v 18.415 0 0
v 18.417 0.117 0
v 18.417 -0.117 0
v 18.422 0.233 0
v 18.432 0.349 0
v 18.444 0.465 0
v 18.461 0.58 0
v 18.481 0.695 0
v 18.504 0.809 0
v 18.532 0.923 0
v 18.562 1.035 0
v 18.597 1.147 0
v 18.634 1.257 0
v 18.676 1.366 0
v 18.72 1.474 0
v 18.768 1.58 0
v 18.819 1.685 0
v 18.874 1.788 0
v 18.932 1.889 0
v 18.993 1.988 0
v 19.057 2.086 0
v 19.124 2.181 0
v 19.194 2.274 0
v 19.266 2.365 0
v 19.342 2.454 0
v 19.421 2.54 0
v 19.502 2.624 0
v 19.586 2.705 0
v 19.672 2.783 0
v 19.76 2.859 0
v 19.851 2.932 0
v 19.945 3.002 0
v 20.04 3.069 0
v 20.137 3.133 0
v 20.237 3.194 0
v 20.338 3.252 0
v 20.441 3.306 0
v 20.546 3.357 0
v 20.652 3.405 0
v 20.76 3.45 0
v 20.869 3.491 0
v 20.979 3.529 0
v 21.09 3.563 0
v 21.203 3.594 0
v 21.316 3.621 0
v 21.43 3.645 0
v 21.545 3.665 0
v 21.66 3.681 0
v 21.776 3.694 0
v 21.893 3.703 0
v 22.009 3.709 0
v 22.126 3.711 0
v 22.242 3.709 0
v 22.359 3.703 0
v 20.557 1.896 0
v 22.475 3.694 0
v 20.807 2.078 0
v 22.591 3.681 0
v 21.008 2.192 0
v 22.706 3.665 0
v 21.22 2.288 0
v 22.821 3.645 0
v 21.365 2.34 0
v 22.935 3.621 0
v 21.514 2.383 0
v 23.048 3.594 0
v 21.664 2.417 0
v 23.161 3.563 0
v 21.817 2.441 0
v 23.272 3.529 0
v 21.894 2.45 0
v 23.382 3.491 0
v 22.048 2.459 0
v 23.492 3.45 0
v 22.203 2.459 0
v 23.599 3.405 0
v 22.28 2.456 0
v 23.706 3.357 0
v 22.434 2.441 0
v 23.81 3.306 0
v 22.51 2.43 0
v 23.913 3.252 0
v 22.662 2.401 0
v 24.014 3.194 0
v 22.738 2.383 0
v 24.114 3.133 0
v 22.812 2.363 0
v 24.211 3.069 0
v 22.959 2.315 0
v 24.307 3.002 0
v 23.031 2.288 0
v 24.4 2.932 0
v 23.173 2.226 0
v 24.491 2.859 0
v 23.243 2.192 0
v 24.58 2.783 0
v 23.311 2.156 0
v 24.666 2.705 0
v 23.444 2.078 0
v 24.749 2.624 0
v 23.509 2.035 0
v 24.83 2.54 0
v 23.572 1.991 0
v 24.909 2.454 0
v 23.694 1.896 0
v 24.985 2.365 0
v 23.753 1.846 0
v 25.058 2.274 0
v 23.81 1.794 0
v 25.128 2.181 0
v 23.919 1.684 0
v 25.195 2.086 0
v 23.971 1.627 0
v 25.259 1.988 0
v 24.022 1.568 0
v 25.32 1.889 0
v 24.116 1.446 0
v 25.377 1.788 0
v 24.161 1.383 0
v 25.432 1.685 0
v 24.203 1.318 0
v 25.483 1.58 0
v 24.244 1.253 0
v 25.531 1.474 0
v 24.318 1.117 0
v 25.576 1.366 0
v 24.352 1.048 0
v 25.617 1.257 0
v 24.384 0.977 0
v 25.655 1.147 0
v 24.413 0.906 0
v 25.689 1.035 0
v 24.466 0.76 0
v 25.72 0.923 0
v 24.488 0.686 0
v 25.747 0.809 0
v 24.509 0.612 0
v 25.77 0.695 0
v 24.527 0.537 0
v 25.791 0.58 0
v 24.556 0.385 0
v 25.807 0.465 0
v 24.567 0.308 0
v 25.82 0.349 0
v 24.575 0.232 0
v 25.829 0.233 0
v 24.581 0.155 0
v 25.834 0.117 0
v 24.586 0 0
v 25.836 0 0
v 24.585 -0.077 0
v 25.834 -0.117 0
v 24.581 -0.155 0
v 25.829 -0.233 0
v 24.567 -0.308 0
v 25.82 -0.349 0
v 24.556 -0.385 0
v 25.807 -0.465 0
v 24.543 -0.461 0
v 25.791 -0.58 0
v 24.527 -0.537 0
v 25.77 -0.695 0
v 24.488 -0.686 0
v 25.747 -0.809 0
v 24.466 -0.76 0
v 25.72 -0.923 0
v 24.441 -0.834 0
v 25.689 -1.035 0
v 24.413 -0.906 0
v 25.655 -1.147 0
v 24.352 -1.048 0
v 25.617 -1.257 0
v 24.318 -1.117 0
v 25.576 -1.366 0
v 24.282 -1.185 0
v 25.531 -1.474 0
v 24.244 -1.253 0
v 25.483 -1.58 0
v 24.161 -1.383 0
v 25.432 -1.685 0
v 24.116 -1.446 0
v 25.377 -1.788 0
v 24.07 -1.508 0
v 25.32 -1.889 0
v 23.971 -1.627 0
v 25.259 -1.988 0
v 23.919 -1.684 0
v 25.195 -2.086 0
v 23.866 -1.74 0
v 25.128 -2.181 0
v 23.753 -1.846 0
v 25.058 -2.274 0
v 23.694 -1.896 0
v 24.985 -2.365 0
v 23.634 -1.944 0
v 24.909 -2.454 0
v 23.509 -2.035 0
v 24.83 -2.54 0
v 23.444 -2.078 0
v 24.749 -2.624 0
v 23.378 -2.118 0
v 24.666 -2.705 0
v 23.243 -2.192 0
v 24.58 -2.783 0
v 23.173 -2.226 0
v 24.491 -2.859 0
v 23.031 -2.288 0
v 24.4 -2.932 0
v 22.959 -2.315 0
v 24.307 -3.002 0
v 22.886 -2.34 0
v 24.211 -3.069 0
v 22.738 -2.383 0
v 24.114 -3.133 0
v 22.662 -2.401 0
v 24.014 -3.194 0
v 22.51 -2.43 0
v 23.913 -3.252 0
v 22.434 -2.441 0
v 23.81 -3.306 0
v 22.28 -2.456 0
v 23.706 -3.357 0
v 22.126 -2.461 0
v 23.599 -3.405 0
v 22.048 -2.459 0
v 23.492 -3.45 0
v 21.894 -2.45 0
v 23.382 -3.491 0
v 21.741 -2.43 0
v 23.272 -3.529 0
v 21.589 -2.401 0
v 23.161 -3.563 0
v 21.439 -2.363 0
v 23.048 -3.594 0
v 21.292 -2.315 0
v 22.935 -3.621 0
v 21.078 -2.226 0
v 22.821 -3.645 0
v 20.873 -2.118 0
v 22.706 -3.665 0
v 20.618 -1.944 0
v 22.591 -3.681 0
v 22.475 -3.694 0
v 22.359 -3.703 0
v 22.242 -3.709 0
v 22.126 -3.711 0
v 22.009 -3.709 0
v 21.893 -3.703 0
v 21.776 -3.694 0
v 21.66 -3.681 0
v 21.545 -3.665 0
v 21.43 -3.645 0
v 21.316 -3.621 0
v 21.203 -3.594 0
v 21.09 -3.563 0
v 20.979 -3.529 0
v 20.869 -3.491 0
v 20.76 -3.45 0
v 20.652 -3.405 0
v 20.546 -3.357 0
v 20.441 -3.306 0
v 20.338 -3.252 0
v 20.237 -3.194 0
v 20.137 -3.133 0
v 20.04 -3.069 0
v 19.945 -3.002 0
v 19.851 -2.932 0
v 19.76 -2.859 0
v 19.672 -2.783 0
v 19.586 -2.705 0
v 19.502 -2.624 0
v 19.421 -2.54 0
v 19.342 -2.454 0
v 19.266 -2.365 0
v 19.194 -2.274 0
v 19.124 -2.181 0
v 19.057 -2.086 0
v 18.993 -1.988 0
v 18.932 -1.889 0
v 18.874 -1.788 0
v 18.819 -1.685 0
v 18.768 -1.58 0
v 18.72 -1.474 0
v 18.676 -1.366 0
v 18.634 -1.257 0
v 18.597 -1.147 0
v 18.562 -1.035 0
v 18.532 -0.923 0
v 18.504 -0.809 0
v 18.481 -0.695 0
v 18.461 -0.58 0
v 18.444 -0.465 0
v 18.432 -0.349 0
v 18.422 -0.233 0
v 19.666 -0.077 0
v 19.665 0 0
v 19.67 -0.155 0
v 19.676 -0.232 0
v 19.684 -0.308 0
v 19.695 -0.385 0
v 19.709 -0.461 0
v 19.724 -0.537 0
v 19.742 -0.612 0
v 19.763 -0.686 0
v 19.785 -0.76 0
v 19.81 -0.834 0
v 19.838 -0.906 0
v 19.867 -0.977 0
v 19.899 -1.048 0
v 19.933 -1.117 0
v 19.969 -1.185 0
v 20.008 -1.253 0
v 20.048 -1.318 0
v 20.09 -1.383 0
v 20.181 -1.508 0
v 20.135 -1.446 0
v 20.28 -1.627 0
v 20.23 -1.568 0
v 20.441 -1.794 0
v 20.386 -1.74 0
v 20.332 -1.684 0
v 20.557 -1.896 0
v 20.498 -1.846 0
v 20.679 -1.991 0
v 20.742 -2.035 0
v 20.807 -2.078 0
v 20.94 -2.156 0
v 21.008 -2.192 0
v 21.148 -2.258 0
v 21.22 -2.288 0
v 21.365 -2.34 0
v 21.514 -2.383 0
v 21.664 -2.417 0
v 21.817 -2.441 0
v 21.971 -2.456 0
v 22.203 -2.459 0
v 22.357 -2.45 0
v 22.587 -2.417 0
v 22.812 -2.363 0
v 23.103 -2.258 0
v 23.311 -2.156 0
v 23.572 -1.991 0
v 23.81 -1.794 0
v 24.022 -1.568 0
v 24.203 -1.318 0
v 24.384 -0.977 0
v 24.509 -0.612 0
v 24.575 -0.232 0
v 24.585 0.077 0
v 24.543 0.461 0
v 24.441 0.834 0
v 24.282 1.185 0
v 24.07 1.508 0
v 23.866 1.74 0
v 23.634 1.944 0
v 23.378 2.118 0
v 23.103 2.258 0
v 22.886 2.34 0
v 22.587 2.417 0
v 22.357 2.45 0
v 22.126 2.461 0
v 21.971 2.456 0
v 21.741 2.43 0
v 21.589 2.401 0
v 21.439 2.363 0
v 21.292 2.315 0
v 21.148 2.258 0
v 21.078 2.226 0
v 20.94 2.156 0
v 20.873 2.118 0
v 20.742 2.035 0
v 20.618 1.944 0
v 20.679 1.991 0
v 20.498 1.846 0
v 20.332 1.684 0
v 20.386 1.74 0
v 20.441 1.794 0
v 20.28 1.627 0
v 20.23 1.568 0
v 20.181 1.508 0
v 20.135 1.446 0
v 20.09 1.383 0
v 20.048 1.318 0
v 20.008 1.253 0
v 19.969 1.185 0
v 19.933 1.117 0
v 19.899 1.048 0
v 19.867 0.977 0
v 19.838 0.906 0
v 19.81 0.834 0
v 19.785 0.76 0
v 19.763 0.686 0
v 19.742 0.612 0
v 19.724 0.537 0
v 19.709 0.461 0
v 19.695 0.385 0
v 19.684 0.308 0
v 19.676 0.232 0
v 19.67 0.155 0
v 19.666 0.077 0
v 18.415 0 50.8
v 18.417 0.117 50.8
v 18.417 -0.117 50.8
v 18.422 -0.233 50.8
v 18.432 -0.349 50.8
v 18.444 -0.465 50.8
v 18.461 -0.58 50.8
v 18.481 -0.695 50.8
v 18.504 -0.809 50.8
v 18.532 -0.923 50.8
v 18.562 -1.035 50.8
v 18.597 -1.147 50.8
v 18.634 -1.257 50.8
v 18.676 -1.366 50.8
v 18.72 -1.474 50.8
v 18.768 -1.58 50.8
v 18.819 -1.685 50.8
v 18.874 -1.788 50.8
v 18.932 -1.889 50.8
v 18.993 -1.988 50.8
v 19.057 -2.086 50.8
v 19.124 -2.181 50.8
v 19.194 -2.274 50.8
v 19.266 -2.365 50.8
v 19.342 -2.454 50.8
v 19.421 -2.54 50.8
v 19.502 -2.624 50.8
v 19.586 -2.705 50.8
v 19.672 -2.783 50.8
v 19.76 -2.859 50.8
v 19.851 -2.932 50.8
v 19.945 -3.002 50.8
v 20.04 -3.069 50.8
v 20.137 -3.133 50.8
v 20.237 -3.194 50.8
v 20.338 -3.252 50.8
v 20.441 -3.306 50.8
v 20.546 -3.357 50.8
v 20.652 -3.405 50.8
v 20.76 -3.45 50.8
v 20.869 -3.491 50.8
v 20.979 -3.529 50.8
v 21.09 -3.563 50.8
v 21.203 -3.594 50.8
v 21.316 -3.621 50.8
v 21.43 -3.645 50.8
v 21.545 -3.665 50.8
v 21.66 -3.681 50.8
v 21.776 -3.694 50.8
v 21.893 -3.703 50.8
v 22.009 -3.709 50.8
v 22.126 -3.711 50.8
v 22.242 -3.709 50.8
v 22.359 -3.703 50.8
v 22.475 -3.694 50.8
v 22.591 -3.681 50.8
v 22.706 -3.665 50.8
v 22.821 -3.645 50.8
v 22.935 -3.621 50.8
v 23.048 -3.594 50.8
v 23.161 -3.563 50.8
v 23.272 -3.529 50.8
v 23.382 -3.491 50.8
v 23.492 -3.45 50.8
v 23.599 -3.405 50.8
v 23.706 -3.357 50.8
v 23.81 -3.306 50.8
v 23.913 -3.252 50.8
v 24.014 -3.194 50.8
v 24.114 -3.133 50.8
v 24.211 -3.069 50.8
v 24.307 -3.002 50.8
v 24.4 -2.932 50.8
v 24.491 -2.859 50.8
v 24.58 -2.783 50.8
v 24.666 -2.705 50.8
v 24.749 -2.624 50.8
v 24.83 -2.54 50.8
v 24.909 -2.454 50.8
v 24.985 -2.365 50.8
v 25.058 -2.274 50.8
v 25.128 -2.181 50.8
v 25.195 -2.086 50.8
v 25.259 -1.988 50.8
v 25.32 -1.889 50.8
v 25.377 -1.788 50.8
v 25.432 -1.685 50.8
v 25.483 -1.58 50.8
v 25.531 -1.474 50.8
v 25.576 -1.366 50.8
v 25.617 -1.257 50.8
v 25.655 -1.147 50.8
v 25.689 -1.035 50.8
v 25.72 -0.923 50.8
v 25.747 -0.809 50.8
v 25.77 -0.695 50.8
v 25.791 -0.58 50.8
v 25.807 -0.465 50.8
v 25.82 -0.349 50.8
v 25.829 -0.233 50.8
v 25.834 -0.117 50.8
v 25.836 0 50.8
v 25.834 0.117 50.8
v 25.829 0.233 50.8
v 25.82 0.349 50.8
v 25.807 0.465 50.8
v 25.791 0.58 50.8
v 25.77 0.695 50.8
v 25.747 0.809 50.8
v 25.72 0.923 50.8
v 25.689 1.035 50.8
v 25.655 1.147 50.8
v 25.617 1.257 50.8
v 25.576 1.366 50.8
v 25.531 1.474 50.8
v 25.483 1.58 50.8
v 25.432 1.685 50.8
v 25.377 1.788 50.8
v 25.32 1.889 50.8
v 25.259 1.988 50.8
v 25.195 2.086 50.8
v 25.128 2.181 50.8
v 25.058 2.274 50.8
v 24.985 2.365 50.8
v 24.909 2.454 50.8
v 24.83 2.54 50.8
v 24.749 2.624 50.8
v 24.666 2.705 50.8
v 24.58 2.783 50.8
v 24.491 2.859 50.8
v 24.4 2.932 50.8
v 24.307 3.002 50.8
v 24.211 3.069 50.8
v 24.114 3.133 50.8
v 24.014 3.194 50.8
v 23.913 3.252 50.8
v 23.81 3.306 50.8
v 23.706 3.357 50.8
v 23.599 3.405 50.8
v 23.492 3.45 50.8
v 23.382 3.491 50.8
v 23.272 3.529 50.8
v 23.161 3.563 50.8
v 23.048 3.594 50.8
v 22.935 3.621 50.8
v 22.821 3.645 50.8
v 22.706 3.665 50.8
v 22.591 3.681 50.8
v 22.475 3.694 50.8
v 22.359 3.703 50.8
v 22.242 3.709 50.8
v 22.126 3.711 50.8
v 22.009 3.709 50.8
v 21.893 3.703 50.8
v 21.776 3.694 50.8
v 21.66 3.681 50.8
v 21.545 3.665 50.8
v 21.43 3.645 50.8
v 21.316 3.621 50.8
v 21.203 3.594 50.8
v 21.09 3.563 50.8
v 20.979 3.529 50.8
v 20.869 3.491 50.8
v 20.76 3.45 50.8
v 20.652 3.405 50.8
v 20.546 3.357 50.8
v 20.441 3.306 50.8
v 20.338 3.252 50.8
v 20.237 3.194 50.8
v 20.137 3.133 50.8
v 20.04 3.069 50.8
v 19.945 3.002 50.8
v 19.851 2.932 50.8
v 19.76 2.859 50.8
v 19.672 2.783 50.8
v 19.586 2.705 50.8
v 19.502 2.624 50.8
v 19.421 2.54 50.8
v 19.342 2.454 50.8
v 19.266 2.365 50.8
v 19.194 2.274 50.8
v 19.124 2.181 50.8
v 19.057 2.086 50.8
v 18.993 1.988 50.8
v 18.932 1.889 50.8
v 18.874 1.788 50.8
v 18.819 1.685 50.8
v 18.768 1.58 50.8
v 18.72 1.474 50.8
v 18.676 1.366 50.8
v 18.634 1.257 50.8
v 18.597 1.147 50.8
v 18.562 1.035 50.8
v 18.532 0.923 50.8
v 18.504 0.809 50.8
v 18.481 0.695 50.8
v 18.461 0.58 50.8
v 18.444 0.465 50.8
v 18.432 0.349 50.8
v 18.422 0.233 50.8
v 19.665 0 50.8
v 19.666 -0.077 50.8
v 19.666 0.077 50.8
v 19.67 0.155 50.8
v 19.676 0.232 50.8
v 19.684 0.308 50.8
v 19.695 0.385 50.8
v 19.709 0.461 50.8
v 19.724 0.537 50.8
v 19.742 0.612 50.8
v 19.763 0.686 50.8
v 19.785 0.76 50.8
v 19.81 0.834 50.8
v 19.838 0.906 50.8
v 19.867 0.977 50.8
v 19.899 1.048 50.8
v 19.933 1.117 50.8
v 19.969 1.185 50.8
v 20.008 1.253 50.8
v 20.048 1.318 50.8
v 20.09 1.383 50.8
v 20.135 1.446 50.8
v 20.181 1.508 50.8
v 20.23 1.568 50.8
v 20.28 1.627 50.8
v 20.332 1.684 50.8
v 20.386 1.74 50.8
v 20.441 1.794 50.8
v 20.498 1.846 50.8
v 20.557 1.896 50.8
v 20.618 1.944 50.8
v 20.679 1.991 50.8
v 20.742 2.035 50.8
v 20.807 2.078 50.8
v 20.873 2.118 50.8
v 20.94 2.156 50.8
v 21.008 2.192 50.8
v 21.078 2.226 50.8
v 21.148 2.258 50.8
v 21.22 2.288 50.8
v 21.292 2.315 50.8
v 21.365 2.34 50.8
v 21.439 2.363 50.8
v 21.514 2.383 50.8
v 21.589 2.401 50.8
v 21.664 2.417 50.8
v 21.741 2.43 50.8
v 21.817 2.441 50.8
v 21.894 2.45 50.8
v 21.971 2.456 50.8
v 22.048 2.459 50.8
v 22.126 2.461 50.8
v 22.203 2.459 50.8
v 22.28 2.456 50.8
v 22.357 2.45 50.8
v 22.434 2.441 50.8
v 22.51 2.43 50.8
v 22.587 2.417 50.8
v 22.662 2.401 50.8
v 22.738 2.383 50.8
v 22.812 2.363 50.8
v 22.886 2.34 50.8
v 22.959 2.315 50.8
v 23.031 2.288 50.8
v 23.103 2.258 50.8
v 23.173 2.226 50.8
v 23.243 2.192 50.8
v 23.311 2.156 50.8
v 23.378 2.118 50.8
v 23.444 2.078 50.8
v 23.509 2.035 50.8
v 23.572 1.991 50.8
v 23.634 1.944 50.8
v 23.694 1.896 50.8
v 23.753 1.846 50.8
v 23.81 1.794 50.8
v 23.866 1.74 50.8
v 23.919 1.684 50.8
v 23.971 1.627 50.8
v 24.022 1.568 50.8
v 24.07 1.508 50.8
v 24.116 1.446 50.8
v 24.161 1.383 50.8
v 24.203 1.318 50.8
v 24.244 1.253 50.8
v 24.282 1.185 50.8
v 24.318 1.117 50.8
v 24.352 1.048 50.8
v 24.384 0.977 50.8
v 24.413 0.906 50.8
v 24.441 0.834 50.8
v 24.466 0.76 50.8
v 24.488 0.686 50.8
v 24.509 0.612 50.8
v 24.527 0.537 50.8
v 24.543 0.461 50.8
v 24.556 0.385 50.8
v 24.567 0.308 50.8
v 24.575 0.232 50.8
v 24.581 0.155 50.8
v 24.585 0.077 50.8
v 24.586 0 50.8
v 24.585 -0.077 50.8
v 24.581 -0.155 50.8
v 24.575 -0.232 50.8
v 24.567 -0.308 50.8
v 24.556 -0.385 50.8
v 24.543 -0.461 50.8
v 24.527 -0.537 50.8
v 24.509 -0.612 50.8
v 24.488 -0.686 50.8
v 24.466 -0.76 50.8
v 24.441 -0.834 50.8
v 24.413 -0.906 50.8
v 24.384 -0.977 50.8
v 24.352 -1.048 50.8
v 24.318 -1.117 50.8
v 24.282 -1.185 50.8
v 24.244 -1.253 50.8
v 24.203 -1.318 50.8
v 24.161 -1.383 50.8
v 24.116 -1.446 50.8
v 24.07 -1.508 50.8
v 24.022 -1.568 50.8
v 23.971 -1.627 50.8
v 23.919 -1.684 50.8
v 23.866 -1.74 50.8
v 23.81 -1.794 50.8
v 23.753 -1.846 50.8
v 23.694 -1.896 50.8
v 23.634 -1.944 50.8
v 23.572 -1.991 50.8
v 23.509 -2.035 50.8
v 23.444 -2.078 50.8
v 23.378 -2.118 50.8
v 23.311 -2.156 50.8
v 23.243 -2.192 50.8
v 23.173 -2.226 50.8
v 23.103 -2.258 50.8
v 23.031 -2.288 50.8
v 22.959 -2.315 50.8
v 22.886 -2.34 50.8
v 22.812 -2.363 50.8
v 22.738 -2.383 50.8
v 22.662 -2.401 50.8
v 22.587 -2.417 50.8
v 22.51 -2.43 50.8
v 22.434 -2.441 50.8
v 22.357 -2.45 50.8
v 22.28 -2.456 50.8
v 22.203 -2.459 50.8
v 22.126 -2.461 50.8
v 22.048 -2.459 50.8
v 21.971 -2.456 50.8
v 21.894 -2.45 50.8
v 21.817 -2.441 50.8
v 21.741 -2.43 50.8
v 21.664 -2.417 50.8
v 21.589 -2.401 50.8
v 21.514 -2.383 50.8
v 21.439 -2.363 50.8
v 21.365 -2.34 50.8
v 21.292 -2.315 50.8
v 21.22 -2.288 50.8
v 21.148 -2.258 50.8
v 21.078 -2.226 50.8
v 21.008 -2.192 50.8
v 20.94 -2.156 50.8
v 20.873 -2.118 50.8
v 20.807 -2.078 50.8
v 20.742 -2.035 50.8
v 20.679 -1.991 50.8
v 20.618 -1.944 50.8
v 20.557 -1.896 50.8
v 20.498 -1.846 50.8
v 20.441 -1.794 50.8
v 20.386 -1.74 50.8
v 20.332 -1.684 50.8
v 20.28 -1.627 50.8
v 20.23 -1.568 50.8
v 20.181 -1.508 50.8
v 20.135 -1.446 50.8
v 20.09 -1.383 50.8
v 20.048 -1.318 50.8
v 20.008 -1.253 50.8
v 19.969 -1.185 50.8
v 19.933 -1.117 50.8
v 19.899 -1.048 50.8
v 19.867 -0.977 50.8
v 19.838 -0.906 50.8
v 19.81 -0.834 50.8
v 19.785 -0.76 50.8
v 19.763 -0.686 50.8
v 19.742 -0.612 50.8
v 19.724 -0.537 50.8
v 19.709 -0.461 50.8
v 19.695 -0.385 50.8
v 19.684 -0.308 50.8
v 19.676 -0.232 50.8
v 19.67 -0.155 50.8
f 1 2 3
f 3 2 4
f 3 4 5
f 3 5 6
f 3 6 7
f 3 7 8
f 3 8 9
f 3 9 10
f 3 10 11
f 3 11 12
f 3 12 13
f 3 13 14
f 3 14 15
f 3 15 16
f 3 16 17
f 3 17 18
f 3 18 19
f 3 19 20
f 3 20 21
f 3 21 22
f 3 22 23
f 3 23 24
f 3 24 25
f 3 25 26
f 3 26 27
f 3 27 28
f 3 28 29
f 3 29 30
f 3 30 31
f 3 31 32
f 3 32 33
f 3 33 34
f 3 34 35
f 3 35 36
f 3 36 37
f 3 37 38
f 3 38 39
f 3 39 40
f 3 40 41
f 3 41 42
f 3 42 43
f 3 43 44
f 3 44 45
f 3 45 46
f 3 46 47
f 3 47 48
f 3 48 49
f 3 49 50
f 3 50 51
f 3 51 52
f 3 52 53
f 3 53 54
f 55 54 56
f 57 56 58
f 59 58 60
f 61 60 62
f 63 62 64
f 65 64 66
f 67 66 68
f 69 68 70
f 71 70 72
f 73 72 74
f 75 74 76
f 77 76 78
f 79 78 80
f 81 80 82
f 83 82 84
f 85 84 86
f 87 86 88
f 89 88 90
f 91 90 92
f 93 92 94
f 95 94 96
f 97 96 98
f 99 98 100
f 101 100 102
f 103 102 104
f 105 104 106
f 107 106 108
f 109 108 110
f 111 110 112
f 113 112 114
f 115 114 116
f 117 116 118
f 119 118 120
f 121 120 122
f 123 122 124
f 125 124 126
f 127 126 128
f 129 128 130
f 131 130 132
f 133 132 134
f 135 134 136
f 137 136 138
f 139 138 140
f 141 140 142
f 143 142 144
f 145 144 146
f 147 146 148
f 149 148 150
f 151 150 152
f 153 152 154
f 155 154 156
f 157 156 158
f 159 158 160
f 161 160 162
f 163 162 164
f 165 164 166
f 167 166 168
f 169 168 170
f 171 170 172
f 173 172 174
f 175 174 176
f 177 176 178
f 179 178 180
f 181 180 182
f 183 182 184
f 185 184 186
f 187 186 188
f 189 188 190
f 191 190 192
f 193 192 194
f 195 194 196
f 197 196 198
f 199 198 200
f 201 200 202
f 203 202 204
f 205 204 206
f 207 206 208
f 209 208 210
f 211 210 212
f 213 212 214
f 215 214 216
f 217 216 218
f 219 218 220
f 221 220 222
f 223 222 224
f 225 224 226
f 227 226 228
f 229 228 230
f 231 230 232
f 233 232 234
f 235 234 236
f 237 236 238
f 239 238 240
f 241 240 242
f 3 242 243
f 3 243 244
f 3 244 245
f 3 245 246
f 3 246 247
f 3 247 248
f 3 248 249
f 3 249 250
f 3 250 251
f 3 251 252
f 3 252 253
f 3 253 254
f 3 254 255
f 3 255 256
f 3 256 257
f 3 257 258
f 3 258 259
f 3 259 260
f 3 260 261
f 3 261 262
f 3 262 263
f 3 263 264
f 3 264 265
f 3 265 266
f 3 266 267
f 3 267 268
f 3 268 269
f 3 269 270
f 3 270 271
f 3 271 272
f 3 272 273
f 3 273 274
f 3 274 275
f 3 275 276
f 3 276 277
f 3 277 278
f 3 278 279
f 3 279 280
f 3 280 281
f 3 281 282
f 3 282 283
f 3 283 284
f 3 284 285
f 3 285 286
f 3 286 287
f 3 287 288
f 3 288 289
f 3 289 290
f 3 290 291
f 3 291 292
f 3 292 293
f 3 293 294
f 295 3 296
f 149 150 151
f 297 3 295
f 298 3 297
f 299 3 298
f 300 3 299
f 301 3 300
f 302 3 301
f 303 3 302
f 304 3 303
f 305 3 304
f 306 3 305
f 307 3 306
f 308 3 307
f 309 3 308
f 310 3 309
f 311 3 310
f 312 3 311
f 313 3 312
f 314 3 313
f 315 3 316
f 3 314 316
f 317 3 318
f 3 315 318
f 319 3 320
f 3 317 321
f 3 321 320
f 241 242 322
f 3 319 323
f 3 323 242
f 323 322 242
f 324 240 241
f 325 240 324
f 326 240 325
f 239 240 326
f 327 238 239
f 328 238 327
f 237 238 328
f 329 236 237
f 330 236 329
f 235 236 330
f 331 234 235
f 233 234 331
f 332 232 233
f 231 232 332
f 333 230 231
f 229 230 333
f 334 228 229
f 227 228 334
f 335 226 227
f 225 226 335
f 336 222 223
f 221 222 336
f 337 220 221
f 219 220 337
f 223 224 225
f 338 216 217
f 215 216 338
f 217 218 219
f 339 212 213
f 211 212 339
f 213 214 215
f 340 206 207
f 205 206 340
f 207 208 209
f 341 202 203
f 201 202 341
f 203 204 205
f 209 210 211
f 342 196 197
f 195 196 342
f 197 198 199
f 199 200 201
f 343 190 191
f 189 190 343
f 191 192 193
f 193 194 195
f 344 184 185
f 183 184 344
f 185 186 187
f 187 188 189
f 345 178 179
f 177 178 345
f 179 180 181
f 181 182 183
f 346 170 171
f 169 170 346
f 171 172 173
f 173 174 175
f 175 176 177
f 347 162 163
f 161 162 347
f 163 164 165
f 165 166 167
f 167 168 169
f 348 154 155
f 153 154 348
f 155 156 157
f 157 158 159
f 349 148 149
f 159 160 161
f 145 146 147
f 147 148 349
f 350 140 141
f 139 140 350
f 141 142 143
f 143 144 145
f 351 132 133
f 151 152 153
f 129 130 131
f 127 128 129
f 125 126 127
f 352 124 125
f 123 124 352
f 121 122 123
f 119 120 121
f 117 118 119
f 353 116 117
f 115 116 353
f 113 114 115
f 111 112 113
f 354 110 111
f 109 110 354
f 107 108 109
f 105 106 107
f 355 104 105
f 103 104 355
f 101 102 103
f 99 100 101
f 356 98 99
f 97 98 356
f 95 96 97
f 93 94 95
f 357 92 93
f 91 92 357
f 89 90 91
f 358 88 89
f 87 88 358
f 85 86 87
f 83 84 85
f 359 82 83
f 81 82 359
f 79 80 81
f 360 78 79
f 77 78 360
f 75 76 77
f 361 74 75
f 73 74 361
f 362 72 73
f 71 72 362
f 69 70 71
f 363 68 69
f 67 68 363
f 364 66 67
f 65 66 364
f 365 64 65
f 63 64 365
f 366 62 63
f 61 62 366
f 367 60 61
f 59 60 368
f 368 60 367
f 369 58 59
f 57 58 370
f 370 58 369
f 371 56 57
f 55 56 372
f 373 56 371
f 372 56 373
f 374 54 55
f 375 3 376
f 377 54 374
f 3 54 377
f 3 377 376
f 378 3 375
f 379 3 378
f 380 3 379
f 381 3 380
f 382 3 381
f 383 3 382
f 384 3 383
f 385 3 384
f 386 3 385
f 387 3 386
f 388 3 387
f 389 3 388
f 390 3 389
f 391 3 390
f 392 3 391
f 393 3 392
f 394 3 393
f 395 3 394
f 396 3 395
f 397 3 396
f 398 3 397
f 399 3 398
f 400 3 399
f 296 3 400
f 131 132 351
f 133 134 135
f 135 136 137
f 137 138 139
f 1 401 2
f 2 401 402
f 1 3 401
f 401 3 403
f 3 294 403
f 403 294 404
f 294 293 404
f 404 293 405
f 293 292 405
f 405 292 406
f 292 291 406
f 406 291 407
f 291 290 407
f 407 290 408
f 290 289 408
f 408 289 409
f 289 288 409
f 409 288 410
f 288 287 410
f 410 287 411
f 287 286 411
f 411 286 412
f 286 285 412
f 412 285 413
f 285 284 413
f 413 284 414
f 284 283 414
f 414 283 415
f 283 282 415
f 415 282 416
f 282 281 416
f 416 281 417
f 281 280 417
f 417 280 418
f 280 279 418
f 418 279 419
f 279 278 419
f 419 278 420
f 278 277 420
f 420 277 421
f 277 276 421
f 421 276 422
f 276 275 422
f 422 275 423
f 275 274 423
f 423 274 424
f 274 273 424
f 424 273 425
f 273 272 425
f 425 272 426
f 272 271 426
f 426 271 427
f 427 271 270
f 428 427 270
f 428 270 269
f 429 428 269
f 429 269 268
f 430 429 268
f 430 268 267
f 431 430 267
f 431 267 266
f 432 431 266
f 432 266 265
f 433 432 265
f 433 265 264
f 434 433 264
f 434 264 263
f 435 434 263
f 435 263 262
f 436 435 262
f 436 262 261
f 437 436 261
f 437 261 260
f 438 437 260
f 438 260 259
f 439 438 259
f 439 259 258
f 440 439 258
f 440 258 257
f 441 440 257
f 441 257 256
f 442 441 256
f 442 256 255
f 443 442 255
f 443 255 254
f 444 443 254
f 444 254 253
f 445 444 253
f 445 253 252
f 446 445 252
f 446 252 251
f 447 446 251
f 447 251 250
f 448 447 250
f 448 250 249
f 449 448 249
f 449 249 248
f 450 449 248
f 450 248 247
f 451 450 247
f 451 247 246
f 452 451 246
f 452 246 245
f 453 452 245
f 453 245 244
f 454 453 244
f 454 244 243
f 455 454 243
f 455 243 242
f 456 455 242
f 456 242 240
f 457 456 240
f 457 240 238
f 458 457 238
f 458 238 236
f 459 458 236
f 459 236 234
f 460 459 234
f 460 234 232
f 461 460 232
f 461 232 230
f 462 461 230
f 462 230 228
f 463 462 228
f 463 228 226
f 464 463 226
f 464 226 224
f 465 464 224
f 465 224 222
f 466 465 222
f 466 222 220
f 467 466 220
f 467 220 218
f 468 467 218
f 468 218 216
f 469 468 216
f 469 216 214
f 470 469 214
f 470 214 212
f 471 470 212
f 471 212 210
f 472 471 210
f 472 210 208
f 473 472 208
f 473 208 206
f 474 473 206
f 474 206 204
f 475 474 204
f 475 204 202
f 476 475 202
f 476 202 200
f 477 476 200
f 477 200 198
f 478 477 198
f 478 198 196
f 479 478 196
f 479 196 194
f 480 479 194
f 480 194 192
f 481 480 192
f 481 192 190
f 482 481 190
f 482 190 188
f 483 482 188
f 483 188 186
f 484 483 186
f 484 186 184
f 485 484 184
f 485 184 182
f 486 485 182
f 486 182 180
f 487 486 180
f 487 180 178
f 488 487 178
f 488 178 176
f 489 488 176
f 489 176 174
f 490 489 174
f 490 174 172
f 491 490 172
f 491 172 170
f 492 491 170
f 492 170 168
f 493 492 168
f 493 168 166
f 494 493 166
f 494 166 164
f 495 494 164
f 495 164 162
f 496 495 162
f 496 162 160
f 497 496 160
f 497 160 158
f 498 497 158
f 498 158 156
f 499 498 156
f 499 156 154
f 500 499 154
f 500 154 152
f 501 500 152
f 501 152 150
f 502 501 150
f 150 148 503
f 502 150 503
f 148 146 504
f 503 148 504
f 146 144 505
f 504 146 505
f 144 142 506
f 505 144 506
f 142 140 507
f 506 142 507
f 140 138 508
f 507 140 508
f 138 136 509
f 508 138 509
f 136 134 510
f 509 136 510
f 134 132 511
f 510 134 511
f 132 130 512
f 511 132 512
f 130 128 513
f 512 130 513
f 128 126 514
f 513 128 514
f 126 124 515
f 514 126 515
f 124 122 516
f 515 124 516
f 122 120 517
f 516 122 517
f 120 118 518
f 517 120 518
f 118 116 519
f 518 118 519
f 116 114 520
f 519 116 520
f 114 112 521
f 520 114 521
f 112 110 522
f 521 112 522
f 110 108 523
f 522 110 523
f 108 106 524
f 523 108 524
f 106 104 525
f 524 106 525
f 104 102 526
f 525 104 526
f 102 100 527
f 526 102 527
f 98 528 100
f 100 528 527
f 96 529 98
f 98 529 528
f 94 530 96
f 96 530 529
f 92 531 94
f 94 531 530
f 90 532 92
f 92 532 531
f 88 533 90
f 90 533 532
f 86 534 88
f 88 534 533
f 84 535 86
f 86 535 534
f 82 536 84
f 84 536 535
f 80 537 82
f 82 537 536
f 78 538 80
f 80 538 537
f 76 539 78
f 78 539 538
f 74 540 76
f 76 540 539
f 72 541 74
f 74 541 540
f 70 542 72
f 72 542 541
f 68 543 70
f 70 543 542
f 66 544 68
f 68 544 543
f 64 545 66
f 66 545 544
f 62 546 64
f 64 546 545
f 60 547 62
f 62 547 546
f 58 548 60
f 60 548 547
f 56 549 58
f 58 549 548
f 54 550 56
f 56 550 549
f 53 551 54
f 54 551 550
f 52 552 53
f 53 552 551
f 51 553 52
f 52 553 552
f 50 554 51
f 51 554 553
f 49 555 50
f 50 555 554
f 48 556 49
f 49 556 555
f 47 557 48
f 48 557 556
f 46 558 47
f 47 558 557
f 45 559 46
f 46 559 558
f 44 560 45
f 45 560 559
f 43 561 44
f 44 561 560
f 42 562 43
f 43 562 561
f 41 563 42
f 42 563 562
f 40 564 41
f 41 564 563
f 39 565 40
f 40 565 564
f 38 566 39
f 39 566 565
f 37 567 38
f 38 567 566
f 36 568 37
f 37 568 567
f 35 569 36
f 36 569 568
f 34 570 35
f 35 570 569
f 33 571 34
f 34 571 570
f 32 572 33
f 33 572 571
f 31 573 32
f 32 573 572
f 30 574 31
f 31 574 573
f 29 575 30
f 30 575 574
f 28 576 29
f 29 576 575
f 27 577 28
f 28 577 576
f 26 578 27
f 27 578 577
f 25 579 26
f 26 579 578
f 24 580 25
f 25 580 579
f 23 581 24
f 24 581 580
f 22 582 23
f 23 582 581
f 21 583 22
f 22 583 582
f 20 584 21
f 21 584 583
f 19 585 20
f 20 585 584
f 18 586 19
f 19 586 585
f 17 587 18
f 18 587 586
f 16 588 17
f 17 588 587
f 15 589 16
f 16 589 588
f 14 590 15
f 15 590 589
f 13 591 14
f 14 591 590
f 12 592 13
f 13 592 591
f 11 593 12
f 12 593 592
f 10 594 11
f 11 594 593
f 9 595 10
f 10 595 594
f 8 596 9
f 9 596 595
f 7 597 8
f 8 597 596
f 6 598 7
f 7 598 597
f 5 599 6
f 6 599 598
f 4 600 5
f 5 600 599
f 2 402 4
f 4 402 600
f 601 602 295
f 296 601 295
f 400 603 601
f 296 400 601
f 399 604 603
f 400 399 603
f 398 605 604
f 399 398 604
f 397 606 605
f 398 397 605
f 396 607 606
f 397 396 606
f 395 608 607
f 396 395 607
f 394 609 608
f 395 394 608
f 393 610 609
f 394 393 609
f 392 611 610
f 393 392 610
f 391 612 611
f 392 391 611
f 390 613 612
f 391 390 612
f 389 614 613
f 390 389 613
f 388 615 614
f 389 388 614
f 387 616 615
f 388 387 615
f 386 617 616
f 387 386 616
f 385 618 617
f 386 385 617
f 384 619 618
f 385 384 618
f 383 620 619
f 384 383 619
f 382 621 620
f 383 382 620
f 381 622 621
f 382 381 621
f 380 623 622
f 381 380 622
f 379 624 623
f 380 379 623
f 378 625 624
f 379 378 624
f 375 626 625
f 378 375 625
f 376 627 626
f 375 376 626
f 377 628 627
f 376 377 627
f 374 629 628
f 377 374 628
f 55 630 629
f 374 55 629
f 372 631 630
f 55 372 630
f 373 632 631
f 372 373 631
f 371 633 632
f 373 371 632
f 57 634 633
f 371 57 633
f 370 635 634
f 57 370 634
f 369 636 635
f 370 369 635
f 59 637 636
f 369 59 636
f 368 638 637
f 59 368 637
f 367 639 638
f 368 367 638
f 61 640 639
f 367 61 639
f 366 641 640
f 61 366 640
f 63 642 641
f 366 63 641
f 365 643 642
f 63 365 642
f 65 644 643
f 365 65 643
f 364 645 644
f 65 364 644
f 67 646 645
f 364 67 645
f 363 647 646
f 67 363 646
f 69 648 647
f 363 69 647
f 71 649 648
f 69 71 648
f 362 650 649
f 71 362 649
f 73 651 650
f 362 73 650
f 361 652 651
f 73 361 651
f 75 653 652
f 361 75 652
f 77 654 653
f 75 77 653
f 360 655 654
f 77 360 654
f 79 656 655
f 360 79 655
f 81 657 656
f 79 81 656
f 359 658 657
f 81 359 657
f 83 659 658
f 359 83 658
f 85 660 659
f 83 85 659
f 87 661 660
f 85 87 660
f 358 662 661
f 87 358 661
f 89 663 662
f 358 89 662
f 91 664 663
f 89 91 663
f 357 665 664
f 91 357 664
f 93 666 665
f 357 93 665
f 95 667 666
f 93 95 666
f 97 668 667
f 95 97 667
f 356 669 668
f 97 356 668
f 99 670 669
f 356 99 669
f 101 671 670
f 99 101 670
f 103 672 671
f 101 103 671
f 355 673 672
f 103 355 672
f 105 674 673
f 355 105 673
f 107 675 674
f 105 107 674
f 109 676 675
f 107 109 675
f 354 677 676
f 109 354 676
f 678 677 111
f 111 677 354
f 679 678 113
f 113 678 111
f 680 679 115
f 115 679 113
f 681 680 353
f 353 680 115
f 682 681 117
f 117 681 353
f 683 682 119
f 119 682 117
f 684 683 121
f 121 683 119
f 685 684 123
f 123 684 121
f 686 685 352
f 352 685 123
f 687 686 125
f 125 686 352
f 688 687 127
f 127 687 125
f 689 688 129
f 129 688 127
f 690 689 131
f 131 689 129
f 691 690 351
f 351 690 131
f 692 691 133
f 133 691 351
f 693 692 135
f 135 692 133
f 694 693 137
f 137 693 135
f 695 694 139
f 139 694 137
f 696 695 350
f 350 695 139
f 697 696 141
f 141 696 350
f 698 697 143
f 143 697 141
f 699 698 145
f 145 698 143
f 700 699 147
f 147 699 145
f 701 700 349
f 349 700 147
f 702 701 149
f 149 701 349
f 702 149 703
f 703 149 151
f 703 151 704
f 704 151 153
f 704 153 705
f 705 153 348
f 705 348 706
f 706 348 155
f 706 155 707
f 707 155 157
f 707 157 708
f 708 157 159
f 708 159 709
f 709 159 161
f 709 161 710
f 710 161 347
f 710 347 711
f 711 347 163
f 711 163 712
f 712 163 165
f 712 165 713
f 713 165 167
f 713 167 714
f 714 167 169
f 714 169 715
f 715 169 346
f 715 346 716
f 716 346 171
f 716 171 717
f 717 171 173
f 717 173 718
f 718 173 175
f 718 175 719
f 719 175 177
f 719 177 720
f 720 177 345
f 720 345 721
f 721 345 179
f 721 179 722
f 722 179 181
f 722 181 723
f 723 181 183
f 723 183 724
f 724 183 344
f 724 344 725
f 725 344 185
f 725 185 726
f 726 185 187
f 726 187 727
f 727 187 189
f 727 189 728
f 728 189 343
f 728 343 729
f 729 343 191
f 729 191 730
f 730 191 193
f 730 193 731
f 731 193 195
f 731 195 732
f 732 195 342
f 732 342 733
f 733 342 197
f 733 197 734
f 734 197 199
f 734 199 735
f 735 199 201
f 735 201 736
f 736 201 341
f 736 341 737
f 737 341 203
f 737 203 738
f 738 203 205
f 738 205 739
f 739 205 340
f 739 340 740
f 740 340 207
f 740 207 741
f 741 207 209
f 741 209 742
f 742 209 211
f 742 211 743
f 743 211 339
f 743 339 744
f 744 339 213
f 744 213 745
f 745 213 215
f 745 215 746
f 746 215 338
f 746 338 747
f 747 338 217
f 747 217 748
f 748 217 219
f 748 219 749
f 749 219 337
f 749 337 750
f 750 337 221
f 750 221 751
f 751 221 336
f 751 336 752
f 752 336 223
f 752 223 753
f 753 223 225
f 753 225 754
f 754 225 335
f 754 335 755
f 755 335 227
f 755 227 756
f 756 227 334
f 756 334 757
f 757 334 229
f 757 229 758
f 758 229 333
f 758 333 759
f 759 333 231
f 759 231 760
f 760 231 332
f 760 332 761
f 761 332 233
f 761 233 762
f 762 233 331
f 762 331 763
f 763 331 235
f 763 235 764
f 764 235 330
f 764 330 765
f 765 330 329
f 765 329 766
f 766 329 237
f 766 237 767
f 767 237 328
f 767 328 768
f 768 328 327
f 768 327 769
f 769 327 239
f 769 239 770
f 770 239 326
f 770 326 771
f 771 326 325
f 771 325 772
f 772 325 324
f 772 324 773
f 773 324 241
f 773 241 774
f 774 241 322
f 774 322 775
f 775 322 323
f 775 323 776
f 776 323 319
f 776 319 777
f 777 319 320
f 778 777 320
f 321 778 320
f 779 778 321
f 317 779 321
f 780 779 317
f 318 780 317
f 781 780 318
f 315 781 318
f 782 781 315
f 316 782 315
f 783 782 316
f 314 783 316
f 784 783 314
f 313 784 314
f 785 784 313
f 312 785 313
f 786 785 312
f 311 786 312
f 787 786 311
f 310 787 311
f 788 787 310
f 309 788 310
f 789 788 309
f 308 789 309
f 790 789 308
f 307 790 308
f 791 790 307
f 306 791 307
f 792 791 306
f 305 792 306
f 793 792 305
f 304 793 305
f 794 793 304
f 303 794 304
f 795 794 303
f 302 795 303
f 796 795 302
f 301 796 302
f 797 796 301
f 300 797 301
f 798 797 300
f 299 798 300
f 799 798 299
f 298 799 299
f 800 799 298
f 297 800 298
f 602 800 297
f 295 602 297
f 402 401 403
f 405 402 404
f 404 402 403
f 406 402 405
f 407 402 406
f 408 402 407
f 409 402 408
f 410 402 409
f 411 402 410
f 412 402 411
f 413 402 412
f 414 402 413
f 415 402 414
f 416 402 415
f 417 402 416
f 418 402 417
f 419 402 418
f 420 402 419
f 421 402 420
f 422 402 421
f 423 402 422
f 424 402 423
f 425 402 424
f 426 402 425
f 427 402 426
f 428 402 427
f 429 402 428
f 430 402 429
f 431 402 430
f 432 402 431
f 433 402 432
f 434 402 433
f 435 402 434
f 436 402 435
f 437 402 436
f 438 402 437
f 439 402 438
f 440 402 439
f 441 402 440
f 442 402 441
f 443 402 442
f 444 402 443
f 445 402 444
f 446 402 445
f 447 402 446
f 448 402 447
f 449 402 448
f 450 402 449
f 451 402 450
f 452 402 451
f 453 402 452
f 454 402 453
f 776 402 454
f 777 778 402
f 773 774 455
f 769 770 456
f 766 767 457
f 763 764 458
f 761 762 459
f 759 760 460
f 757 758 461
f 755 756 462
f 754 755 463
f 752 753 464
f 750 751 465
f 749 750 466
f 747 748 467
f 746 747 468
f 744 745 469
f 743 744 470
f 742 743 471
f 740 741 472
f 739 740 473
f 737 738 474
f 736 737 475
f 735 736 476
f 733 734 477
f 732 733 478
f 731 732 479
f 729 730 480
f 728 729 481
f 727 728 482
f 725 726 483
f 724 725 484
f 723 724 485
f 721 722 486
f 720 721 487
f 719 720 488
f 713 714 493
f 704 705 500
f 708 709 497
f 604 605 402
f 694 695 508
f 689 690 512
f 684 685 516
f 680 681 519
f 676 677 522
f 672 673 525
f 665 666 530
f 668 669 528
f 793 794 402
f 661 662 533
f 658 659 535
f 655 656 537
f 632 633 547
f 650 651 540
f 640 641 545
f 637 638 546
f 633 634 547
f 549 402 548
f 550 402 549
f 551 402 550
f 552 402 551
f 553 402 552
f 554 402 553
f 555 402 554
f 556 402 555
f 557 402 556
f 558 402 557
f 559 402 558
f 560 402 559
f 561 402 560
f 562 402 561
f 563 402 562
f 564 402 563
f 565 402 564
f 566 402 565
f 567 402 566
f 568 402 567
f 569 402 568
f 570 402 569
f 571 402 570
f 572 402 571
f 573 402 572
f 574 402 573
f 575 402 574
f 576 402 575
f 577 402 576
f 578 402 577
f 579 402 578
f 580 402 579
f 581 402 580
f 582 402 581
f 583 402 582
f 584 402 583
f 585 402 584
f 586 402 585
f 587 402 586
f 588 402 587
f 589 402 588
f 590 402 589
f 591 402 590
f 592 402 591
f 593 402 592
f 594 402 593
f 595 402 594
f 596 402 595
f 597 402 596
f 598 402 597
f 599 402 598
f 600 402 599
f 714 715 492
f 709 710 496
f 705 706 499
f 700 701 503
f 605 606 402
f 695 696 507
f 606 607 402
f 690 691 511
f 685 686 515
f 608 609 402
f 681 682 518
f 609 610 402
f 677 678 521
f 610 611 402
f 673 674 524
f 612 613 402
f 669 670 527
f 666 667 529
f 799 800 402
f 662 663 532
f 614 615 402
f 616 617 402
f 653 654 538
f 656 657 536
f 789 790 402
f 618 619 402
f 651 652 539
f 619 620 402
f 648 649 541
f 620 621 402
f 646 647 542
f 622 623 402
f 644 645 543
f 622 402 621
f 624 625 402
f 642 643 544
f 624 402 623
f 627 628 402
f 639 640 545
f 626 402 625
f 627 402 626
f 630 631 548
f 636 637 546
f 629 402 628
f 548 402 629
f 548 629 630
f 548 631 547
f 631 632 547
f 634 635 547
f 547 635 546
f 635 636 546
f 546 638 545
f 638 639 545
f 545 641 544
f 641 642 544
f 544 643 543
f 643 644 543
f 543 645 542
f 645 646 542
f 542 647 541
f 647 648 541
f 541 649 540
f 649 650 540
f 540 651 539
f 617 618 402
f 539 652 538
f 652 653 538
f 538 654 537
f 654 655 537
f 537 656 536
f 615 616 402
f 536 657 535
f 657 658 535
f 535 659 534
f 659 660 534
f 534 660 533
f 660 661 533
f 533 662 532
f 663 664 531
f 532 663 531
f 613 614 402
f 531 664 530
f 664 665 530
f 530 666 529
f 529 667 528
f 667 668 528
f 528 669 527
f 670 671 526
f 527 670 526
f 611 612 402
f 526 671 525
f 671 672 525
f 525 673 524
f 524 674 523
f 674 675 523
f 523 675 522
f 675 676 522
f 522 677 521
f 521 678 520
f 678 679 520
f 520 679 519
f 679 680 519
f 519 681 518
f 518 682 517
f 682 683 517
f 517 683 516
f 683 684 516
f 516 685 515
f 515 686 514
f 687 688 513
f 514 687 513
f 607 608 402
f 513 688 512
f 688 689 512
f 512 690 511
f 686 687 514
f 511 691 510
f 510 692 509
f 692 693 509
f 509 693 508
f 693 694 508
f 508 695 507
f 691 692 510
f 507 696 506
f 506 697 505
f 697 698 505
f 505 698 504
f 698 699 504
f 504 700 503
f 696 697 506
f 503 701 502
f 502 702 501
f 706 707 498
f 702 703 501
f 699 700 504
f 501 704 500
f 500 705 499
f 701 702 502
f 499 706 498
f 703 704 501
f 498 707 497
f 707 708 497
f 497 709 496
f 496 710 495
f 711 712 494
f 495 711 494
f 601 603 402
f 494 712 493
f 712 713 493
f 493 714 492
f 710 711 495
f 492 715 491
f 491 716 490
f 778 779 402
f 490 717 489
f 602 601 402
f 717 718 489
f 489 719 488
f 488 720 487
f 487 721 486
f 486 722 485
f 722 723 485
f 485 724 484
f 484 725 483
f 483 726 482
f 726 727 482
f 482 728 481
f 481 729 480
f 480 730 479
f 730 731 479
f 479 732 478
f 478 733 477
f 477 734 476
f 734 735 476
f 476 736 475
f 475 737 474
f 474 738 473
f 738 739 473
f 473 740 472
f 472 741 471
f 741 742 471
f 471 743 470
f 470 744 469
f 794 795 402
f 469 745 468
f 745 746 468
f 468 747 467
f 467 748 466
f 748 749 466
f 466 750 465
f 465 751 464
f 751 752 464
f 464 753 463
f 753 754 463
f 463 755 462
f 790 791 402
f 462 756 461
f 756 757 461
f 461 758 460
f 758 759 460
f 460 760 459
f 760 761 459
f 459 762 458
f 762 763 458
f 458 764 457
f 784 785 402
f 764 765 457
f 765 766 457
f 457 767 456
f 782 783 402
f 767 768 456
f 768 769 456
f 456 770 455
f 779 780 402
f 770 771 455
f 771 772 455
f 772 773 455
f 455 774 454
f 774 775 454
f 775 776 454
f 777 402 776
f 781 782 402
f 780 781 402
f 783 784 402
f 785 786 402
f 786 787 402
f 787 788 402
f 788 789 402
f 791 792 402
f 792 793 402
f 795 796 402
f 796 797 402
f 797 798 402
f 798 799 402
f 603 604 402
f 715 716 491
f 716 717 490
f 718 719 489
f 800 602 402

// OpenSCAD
translate(v = [22.1256137272, 0, 0]) {
	difference() {
		cylinder($fn = 200, h = 50.7999725680, r = 3.7106236713);
		cylinder($fn = 200, h = 50.7999725680, r = 2.4606236713);
	}
}
